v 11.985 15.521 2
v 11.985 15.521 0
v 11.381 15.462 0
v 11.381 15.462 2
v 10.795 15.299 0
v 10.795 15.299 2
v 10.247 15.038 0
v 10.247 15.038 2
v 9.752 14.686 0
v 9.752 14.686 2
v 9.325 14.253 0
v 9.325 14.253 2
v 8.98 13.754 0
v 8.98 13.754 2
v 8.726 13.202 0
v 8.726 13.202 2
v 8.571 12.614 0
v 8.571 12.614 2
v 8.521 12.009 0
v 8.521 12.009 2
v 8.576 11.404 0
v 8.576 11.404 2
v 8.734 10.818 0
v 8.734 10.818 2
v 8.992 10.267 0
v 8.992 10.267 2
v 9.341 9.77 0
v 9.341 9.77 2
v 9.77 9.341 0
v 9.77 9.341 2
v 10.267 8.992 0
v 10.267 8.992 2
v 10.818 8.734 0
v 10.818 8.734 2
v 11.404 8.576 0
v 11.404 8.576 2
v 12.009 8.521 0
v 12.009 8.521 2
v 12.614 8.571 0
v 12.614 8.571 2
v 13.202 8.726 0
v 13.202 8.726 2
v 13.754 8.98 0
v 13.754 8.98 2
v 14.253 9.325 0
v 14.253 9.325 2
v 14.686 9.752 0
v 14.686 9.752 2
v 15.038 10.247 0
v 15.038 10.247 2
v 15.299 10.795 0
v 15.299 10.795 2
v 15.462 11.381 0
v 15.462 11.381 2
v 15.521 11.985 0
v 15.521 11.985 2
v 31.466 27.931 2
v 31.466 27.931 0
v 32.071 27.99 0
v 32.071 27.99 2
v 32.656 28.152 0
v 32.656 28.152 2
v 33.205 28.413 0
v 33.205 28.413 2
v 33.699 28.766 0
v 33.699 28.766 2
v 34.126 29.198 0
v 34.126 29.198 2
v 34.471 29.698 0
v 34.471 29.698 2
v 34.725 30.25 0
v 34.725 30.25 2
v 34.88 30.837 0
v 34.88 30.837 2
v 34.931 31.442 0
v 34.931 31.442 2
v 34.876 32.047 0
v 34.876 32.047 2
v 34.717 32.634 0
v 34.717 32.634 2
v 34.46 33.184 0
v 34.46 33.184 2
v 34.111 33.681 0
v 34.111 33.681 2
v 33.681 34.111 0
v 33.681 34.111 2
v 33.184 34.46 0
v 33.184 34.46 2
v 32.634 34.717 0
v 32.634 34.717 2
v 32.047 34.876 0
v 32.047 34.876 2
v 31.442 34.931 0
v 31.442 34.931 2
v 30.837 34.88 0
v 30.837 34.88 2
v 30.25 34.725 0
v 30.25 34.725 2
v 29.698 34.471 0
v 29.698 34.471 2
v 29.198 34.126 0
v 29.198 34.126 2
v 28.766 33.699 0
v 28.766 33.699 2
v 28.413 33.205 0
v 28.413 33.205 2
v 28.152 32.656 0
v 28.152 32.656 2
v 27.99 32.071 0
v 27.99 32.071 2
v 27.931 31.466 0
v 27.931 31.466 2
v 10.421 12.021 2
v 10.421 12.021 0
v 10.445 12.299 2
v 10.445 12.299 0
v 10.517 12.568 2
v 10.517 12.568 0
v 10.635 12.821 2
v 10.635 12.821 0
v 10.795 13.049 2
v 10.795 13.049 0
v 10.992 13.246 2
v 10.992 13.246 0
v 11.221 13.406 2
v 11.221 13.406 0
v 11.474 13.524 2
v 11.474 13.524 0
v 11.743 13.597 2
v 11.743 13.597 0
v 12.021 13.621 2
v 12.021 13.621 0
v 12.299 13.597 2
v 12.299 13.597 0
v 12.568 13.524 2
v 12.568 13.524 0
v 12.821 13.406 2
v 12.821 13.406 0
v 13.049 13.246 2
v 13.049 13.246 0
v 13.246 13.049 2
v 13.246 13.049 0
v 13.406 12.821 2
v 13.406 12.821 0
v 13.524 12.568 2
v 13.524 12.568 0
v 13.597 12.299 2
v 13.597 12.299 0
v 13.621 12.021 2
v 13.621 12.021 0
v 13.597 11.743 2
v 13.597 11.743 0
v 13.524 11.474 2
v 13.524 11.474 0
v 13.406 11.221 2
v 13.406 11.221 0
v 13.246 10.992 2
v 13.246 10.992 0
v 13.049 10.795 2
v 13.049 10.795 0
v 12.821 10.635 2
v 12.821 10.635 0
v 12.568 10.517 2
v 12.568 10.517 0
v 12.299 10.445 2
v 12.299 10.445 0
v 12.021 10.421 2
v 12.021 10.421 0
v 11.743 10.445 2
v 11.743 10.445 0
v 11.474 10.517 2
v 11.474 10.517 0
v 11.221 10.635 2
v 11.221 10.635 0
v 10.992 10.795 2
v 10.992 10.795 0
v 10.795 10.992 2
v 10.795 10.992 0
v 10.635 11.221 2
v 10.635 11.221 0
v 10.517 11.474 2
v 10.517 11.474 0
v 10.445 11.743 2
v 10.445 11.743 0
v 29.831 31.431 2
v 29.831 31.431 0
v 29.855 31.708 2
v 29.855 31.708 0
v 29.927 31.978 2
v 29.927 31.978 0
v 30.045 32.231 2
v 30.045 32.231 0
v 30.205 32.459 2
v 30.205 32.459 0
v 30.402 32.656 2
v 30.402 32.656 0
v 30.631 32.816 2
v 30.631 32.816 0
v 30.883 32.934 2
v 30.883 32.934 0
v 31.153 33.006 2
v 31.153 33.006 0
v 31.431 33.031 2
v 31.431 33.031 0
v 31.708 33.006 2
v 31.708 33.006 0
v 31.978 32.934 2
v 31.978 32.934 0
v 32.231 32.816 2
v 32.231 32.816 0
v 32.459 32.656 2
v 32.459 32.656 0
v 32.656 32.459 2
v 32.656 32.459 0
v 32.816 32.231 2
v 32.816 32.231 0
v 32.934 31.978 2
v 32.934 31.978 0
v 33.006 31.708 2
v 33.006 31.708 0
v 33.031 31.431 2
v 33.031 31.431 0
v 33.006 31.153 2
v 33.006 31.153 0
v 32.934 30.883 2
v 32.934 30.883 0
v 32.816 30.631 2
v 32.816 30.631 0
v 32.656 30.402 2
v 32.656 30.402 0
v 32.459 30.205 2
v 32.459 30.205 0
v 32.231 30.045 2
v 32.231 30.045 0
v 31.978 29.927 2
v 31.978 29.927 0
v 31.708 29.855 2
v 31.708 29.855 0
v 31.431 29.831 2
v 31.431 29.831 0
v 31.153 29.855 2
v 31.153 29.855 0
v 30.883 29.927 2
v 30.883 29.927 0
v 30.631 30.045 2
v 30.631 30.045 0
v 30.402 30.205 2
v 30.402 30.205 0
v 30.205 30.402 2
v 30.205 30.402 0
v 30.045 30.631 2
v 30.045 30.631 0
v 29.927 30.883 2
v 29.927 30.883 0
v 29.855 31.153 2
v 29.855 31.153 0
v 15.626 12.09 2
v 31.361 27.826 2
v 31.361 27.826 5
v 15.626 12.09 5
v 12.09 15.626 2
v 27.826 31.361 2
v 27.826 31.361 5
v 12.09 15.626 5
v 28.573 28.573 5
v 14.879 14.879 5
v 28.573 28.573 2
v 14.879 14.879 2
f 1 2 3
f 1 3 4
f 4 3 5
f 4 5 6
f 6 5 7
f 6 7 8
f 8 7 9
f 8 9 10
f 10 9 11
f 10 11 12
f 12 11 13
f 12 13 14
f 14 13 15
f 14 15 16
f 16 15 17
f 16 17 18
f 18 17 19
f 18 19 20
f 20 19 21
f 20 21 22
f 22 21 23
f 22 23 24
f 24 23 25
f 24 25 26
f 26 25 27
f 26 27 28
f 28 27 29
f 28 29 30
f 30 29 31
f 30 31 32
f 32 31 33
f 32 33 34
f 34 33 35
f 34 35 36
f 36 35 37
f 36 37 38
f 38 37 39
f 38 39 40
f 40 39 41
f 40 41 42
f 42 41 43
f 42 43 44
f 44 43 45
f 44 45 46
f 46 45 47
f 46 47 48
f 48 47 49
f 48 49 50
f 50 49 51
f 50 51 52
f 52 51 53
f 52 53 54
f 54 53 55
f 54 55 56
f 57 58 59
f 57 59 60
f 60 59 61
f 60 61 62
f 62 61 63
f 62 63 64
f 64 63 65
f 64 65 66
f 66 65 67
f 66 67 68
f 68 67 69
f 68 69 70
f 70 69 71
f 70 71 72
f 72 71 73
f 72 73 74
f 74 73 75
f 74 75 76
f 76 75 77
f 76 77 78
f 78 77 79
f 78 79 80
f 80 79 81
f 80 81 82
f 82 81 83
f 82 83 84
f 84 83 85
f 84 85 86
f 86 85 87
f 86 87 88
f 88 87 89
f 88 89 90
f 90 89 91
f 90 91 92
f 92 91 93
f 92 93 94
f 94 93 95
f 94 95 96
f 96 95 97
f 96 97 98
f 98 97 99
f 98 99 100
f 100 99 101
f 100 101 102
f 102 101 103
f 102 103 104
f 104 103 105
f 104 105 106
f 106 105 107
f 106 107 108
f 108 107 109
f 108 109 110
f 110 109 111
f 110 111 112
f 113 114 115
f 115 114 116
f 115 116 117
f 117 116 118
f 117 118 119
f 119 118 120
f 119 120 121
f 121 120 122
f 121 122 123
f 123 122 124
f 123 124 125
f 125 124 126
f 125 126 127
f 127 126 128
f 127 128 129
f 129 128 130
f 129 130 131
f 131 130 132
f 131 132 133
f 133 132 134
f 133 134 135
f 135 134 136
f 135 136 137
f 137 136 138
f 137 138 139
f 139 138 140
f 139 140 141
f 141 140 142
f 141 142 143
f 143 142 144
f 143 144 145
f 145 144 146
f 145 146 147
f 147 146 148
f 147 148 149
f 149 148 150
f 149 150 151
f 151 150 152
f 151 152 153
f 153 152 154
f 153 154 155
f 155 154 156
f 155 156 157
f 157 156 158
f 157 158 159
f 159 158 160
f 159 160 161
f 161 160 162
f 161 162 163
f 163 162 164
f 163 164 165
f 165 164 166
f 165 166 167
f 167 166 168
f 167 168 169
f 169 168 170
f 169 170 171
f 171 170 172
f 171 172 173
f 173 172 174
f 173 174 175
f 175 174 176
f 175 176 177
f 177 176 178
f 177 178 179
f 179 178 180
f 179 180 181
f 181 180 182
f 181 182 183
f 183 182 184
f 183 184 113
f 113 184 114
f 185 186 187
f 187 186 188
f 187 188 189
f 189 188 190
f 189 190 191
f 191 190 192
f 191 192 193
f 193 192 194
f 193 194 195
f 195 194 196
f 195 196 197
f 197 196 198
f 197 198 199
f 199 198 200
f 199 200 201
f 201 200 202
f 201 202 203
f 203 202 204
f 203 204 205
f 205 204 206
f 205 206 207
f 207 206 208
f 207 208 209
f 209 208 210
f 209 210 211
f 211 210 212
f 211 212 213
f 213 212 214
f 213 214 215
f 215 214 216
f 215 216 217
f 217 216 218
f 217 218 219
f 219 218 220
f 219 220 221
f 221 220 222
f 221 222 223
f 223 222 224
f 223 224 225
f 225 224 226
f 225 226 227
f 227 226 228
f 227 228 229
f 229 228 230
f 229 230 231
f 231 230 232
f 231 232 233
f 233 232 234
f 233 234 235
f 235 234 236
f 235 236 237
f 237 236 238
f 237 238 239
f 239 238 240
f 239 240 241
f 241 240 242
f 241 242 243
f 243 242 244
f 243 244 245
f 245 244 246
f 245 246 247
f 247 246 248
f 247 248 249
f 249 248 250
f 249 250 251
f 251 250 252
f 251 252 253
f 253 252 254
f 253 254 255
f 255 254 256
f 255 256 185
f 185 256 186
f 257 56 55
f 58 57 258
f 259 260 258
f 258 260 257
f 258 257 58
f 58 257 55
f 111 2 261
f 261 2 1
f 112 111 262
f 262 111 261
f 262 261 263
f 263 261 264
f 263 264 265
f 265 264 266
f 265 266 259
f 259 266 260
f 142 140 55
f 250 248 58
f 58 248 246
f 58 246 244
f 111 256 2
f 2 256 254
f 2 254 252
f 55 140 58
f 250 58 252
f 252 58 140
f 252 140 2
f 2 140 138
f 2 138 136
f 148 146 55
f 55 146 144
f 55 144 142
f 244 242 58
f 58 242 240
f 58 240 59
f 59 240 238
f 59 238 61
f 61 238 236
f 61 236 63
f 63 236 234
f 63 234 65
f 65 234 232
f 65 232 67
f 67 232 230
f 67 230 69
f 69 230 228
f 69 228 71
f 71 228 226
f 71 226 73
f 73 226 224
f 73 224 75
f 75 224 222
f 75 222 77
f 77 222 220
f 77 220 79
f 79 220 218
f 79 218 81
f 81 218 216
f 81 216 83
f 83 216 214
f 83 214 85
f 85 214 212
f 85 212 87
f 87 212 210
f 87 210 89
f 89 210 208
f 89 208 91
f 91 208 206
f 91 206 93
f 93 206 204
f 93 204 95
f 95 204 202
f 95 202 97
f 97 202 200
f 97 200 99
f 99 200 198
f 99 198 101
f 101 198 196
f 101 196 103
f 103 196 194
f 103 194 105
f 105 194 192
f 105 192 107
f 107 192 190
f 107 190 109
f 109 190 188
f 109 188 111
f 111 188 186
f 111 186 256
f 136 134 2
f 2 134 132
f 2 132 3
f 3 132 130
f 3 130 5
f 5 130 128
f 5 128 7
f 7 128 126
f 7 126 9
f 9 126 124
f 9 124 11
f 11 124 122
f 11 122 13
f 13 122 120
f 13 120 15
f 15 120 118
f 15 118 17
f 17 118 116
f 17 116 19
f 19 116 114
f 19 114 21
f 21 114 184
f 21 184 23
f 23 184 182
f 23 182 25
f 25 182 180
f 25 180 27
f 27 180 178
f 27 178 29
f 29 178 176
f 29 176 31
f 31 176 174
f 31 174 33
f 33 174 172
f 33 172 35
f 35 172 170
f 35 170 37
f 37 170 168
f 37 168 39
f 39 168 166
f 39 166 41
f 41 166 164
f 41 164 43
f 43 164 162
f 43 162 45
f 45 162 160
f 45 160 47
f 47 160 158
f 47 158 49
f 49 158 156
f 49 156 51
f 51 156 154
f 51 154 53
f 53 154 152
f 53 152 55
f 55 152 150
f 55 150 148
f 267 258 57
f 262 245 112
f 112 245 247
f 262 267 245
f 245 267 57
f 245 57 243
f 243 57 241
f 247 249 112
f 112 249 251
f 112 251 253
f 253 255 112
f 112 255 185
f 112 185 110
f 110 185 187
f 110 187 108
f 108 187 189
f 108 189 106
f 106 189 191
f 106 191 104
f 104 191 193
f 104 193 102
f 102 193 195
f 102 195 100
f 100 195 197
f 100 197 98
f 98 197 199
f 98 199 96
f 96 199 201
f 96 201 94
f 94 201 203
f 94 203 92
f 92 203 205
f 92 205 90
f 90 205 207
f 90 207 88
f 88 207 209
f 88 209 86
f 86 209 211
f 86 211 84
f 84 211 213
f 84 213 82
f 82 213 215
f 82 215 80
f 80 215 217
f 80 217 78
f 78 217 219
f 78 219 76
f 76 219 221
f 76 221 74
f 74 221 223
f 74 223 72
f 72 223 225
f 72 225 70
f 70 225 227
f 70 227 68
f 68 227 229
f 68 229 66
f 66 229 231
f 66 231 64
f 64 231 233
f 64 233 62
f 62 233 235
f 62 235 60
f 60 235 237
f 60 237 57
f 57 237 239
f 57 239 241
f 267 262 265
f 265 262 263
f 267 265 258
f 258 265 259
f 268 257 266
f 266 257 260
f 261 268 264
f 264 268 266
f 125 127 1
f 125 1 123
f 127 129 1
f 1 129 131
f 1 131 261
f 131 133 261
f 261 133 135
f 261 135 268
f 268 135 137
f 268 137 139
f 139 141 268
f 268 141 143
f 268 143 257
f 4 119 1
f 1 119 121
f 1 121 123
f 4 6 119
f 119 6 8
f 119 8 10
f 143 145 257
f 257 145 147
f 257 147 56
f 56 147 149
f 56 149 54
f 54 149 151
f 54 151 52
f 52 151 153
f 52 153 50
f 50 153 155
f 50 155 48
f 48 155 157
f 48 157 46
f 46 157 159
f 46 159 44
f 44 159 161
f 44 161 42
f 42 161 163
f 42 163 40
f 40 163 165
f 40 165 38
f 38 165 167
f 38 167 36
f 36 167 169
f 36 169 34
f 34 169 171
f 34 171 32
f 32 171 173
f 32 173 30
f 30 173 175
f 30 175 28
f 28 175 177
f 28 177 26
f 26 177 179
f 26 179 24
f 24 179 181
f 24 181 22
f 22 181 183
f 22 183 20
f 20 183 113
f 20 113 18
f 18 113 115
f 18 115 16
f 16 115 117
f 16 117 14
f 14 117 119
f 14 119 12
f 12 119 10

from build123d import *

# Parameters (mm, degrees)
SKETCH1_R           = 1.6
BOSS_EXTRUDE1_DEPTH = 5
CUT_EXTRUDE1_START  = -3
SKETCH2_R           = 1.6
CUT_EXTRUDE1_DEPTH  = 3


with BuildPart() as part:
    # Sketch1 → Boss-Extrude1 (new body)
    with BuildSketch(Plane.XY):
        with BuildLine():
            ThreePointArc((31.466251763, 27.930717857), (33.905409352, 33.905409352), (27.930717857, 31.466251763))
            Line((27.930717857, 31.466251763), (11.985099135, 15.520633041))
            ThreePointArc((11.985099135, 15.520633041), (9.545941546, 9.545941546), (15.520633041, 11.985099135))
            Line((15.520633041, 11.985099135), (31.466251763, 27.930717857))
        make_face()
        with Locations((31.430535617, 31.430535617)):
            Circle(SKETCH1_R, mode=Mode.SUBTRACT)
        with Locations((12.02081528, 12.02081528)):
            Circle(SKETCH1_R, mode=Mode.SUBTRACT)
    extrude(amount=BOSS_EXTRUDE1_DEPTH)

    # Sketch2 → Cut-Extrude1 (cut)
    # profile 1 of 2: a face of its own
    with BuildSketch(Plane.XY.offset(5).offset(CUT_EXTRUDE1_START)):
        with BuildLine():
            ThreePointArc((11.985099135, 15.520633041), (9.545941546, 9.545941546), (15.520633041, 11.985099135))
            Line((15.520633041, 11.985099135), (15.62569954, 12.090165634))
            Line((15.62569954, 12.090165634), (14.878553313, 14.878553313))
            Line((14.878553313, 14.878553313), (12.090165634, 15.62569954))
            Line((12.090165634, 15.62569954), (11.985099135, 15.520633041))
        make_face()
        with Locations((12.02081528, 12.02081528)):
            Circle(SKETCH2_R, mode=Mode.SUBTRACT)
    # profile 2 of 2: a face of its own
    with BuildSketch(Plane.XY.offset(5).offset(CUT_EXTRUDE1_START)):
        with BuildLine():
            Line((28.572797584, 28.572797584), (31.361185263, 27.825651357))
            Line((31.361185263, 27.825651357), (31.466251763, 27.930717857))
            ThreePointArc((31.466251763, 27.930717857), (33.905409352, 33.905409352), (27.930717857, 31.466251763))
            Line((27.930717857, 31.466251763), (27.825651357, 31.361185263))
            Line((27.825651357, 31.361185263), (28.572797584, 28.572797584))
        make_face()
        with Locations((31.430535617, 31.430535617)):
            Circle(SKETCH2_R, mode=Mode.SUBTRACT)
    extrude(amount=CUT_EXTRUDE1_DEPTH, mode=Mode.SUBTRACT)


solid = part.part
